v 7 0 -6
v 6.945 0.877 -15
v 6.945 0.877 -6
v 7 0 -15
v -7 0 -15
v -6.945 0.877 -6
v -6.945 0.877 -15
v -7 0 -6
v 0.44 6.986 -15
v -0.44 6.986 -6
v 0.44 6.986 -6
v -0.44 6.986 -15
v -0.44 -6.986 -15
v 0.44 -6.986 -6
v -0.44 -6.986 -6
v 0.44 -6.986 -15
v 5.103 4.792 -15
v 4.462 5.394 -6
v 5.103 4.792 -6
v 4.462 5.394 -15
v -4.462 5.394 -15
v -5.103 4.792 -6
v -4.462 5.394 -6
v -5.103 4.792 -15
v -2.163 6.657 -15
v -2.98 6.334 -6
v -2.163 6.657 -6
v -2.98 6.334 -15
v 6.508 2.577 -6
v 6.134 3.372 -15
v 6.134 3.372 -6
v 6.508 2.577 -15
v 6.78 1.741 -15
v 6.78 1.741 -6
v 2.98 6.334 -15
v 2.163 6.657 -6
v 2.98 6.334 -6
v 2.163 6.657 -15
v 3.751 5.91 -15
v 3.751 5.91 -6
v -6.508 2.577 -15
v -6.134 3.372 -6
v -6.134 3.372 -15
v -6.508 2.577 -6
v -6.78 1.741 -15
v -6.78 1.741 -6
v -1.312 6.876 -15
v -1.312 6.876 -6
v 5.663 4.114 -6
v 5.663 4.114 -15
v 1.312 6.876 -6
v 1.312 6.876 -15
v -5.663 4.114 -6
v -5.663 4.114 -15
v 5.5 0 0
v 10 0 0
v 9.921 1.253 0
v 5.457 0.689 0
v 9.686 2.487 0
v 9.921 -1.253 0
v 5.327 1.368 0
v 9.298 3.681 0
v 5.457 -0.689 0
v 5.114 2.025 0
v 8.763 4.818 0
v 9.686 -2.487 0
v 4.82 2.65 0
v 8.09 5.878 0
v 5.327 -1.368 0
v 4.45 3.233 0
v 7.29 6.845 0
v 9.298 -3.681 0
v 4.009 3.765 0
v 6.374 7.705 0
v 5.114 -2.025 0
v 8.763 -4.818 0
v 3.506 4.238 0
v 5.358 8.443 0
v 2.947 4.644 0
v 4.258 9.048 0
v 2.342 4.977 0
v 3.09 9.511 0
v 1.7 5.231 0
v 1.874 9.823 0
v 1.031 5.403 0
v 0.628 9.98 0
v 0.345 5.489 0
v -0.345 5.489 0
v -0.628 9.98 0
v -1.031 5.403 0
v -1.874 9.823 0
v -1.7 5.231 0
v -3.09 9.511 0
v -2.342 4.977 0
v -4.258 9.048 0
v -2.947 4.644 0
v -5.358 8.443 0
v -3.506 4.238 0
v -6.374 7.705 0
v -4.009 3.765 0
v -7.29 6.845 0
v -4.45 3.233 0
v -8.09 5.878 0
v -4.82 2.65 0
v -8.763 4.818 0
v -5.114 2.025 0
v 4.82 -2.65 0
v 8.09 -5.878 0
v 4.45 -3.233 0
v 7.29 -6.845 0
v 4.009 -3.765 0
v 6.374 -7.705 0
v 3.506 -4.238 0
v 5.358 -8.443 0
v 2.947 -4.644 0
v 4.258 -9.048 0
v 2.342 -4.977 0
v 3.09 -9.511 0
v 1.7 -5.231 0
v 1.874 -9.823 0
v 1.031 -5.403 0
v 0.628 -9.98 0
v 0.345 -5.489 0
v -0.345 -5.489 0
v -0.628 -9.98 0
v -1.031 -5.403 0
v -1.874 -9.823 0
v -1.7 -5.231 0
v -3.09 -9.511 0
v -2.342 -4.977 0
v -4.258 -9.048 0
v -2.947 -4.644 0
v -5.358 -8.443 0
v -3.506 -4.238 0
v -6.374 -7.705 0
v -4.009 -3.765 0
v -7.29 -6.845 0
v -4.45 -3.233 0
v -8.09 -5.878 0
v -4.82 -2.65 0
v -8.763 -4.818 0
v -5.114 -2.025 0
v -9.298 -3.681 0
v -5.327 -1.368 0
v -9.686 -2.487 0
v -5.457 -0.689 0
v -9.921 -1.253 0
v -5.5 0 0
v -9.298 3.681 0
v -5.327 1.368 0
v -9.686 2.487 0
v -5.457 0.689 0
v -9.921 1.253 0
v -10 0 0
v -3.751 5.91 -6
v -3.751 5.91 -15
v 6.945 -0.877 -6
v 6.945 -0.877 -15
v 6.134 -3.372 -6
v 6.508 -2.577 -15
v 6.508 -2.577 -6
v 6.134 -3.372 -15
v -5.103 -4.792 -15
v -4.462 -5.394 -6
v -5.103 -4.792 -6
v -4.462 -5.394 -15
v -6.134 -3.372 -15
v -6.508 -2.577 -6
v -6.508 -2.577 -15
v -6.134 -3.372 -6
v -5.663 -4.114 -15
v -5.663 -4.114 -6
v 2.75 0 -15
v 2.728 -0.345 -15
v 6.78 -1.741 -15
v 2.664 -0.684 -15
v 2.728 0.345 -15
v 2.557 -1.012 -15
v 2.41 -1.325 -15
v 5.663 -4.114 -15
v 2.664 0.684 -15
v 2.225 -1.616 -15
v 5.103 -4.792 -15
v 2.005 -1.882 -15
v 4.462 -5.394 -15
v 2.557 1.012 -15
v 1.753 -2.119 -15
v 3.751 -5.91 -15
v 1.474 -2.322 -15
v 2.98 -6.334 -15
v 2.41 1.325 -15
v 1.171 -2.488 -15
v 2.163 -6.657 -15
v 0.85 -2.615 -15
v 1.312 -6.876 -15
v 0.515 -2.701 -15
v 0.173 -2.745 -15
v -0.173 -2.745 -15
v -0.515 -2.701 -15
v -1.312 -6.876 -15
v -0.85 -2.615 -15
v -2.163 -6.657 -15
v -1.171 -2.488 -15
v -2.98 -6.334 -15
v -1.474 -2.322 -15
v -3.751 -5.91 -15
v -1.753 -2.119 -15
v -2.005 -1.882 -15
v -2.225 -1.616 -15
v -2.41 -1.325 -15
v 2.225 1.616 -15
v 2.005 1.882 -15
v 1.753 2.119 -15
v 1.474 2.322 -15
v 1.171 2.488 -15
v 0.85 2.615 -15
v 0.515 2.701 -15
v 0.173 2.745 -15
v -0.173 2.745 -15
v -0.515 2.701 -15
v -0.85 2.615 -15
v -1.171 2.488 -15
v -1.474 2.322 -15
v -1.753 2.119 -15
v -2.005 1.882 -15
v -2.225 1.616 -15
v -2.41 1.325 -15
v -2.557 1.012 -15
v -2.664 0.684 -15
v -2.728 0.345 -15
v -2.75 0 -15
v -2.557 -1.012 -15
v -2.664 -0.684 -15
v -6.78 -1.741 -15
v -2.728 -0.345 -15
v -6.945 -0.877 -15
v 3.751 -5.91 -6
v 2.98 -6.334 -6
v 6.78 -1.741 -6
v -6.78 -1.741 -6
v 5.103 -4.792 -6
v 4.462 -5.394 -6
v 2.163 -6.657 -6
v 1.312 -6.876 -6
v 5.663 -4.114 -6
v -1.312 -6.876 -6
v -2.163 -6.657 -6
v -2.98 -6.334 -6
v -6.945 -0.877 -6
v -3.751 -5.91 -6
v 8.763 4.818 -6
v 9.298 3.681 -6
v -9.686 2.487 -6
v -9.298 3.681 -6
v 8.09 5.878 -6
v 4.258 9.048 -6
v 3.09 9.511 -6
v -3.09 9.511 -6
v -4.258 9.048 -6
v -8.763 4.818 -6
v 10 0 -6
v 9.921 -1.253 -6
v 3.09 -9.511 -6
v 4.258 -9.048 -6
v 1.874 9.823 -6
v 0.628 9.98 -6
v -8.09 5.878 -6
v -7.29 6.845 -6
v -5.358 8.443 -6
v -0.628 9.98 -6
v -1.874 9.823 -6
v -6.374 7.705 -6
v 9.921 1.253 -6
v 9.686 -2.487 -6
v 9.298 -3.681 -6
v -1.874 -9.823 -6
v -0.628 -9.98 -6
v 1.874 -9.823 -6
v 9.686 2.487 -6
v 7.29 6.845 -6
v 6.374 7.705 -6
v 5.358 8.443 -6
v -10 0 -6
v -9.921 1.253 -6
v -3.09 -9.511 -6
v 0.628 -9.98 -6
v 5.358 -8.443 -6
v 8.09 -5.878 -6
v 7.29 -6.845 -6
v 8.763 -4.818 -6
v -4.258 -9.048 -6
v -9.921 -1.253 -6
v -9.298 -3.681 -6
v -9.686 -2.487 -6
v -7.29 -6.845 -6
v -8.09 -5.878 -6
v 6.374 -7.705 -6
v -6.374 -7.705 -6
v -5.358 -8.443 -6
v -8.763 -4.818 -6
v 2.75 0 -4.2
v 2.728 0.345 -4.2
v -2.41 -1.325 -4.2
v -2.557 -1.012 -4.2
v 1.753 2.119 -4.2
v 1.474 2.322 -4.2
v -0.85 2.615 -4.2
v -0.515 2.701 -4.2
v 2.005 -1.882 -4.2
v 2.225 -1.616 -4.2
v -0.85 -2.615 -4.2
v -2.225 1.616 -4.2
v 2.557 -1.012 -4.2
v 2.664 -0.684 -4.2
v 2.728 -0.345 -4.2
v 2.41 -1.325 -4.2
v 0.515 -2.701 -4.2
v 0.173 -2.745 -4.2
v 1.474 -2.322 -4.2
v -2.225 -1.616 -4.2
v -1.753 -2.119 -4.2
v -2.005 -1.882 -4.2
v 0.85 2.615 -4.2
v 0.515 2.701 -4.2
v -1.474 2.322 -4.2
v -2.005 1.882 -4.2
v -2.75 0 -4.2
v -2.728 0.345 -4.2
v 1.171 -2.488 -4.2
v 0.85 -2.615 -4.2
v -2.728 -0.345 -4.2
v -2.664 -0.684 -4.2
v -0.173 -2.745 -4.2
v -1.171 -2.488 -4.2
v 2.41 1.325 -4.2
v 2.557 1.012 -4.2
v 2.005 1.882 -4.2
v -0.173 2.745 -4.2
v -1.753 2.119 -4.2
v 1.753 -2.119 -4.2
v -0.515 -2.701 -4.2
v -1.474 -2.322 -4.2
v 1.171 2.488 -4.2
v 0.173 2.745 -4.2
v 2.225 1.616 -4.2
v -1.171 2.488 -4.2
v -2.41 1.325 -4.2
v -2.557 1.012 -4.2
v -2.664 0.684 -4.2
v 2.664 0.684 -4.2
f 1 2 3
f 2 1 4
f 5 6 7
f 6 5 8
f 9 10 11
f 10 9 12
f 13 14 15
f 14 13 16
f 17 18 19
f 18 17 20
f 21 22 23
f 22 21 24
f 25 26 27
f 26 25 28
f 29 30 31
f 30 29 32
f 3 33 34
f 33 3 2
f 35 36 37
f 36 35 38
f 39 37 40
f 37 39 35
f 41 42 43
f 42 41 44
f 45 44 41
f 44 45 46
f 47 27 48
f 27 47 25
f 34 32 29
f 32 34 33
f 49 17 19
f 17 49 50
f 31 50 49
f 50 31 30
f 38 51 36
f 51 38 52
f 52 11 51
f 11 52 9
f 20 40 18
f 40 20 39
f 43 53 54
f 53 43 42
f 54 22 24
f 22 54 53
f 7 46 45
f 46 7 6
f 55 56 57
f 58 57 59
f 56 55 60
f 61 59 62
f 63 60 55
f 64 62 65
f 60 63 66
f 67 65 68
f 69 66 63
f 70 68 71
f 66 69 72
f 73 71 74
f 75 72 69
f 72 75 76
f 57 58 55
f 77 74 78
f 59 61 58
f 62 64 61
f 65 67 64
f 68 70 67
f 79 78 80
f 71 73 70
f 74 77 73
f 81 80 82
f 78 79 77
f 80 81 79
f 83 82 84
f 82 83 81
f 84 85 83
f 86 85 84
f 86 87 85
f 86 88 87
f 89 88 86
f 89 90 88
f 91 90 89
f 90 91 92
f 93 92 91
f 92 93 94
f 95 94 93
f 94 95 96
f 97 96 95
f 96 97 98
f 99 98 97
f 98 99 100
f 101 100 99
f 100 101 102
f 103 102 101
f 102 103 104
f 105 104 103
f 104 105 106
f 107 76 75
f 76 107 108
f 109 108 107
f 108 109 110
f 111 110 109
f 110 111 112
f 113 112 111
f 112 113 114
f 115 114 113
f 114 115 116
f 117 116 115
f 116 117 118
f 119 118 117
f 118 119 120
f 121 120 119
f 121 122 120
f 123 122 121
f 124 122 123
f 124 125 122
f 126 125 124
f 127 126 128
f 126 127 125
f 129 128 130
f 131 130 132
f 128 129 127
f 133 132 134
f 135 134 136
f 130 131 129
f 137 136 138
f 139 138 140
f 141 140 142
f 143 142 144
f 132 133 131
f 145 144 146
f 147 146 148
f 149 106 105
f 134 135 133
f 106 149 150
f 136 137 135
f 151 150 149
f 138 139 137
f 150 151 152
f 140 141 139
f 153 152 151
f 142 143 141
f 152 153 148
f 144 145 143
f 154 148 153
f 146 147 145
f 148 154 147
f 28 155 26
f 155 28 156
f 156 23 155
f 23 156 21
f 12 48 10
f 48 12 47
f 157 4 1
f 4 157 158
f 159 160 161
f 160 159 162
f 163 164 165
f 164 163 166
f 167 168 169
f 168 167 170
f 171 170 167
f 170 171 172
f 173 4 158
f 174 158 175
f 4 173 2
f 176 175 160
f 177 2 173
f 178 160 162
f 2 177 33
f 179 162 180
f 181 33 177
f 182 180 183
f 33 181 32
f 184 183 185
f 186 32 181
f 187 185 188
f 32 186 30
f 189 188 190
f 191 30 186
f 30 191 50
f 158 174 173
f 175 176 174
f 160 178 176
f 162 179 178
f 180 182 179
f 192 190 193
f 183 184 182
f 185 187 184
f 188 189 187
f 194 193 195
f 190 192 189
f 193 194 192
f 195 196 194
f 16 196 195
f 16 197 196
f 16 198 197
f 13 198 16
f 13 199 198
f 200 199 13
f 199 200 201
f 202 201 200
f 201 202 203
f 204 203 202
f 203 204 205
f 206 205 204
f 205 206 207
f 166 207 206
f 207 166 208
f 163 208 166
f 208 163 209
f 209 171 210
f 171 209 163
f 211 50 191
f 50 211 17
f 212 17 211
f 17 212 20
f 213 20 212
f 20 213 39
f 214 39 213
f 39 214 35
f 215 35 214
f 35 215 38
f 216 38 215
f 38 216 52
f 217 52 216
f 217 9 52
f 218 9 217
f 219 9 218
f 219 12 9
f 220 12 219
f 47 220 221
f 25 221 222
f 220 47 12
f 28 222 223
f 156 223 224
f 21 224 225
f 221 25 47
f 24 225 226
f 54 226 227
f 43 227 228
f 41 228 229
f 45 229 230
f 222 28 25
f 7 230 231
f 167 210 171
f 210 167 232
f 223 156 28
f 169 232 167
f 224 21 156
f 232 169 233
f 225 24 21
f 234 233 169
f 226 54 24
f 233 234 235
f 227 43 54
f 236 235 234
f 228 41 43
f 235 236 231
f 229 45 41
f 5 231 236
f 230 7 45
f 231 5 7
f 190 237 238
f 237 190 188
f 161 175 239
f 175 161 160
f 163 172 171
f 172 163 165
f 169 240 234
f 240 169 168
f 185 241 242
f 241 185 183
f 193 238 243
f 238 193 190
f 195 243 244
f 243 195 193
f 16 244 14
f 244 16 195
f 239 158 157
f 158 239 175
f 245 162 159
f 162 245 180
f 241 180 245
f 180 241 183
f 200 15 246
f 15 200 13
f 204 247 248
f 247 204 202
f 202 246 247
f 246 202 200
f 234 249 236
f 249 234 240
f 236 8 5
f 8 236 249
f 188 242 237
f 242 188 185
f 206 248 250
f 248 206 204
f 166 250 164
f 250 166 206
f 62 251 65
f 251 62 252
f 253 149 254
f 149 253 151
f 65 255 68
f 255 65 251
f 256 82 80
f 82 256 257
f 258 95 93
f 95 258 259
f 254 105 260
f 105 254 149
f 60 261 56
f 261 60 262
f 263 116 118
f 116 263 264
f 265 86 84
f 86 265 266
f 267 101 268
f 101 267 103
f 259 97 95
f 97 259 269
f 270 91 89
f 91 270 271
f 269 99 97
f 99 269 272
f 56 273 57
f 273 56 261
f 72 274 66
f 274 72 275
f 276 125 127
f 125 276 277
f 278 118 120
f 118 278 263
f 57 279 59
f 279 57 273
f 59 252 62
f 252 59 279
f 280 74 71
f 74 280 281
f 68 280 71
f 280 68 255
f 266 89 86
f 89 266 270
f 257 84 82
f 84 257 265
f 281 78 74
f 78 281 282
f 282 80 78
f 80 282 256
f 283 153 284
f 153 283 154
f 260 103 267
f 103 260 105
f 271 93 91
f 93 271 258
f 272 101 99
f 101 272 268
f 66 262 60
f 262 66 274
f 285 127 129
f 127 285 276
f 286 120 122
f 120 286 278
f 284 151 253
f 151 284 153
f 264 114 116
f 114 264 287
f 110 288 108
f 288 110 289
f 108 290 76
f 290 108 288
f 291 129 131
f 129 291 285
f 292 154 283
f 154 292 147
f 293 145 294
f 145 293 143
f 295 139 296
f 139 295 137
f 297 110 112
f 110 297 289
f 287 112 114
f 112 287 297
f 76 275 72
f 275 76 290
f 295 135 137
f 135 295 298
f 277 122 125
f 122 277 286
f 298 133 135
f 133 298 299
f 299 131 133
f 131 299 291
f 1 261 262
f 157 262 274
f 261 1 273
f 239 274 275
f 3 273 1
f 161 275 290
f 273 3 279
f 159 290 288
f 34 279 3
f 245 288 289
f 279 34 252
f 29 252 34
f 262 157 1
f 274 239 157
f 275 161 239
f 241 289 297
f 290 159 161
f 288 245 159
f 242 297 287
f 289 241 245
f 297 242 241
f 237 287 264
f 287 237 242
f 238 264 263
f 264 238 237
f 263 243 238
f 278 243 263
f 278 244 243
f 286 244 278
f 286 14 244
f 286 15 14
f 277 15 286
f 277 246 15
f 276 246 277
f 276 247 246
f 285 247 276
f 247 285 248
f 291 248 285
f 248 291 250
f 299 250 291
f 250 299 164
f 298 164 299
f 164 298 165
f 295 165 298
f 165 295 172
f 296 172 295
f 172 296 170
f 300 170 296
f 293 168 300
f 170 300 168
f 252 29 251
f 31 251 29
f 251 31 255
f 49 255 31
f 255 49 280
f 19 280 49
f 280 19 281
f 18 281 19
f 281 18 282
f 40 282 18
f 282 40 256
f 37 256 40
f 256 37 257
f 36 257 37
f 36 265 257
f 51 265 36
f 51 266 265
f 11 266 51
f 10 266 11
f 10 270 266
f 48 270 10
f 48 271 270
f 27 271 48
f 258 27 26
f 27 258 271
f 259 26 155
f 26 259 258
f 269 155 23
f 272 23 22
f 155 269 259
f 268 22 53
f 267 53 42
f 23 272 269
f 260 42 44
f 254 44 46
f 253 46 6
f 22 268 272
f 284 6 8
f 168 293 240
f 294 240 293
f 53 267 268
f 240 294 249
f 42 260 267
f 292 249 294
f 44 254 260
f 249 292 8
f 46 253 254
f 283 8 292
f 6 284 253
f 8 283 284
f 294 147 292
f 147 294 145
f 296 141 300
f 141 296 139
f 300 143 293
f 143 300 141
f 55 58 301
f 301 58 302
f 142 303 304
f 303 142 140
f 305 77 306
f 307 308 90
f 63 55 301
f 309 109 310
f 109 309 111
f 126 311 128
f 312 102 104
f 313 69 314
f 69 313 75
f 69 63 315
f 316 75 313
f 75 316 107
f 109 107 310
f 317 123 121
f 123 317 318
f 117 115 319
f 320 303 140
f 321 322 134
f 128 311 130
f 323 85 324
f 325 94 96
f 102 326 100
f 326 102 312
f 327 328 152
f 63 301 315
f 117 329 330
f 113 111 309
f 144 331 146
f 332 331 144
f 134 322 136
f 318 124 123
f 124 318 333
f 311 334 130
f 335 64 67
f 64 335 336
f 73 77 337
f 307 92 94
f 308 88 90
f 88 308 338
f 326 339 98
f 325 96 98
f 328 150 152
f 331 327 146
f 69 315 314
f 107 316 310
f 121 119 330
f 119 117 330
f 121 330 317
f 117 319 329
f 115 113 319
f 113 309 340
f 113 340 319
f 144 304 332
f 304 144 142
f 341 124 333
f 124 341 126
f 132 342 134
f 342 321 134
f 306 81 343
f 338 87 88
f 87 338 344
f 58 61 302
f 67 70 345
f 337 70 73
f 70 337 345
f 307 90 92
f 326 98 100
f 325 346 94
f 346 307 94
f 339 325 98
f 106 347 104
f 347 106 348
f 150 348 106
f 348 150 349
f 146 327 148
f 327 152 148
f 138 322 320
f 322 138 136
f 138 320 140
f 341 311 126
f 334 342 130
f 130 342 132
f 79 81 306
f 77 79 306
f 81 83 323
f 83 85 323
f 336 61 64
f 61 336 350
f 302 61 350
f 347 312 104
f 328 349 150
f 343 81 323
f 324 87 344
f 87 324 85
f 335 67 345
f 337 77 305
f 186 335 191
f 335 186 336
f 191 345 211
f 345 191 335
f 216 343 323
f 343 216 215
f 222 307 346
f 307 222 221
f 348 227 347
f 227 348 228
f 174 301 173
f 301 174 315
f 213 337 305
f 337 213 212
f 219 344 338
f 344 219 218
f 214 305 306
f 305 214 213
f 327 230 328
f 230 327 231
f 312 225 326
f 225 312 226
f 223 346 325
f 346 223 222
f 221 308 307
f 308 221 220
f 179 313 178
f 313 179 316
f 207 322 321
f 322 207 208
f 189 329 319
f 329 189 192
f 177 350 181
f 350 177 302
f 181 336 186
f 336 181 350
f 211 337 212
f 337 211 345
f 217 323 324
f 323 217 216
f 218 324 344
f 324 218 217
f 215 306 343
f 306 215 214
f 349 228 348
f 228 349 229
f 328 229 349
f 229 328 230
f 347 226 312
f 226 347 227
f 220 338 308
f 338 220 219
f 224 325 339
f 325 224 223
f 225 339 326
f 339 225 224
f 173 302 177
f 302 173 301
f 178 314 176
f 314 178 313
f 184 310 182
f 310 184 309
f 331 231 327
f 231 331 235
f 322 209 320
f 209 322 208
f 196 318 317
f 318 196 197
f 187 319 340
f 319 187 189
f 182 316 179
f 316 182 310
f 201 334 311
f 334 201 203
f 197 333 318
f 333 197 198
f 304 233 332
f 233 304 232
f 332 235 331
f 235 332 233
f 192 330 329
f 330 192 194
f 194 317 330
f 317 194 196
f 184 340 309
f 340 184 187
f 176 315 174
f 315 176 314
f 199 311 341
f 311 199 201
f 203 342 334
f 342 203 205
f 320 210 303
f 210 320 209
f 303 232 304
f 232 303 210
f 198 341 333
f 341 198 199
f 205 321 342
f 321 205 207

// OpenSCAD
$fn = 50;


difference() {
	union() {
		translate(v = [0, 0, -15.0000000000]) {
			cylinder(h = 15, r = 7.0000000000);
		}
		translate(v = [0, 0, -6.0000000000]) {
			cylinder(h = 6, r = 10.0000000000);
		}
	}
	union() {
		translate(v = [0, 0, 0]) {
			rotate(a = [0, 0, 0]) {
				difference() {
					union() {
						#translate(v = [0, 0, -15.0000000000]) {
							cylinder(h = 15, r = 2.2500000000);
						}
						#translate(v = [0, 0, -4.2000000000]) {
							cylinder(h = 4.2000000000, r1 = 2.7500000000, r2 = 5.5000000000);
						}
						#translate(v = [0, 0, -15.0000000000]) {
							cylinder(h = 15, r = 2.7500000000);
						}
						#translate(v = [0, 0, -15.0000000000]) {
							cylinder(h = 15, r = 2.2500000000);
						}
					}
					union();
				}
			}
		}
	}
}
